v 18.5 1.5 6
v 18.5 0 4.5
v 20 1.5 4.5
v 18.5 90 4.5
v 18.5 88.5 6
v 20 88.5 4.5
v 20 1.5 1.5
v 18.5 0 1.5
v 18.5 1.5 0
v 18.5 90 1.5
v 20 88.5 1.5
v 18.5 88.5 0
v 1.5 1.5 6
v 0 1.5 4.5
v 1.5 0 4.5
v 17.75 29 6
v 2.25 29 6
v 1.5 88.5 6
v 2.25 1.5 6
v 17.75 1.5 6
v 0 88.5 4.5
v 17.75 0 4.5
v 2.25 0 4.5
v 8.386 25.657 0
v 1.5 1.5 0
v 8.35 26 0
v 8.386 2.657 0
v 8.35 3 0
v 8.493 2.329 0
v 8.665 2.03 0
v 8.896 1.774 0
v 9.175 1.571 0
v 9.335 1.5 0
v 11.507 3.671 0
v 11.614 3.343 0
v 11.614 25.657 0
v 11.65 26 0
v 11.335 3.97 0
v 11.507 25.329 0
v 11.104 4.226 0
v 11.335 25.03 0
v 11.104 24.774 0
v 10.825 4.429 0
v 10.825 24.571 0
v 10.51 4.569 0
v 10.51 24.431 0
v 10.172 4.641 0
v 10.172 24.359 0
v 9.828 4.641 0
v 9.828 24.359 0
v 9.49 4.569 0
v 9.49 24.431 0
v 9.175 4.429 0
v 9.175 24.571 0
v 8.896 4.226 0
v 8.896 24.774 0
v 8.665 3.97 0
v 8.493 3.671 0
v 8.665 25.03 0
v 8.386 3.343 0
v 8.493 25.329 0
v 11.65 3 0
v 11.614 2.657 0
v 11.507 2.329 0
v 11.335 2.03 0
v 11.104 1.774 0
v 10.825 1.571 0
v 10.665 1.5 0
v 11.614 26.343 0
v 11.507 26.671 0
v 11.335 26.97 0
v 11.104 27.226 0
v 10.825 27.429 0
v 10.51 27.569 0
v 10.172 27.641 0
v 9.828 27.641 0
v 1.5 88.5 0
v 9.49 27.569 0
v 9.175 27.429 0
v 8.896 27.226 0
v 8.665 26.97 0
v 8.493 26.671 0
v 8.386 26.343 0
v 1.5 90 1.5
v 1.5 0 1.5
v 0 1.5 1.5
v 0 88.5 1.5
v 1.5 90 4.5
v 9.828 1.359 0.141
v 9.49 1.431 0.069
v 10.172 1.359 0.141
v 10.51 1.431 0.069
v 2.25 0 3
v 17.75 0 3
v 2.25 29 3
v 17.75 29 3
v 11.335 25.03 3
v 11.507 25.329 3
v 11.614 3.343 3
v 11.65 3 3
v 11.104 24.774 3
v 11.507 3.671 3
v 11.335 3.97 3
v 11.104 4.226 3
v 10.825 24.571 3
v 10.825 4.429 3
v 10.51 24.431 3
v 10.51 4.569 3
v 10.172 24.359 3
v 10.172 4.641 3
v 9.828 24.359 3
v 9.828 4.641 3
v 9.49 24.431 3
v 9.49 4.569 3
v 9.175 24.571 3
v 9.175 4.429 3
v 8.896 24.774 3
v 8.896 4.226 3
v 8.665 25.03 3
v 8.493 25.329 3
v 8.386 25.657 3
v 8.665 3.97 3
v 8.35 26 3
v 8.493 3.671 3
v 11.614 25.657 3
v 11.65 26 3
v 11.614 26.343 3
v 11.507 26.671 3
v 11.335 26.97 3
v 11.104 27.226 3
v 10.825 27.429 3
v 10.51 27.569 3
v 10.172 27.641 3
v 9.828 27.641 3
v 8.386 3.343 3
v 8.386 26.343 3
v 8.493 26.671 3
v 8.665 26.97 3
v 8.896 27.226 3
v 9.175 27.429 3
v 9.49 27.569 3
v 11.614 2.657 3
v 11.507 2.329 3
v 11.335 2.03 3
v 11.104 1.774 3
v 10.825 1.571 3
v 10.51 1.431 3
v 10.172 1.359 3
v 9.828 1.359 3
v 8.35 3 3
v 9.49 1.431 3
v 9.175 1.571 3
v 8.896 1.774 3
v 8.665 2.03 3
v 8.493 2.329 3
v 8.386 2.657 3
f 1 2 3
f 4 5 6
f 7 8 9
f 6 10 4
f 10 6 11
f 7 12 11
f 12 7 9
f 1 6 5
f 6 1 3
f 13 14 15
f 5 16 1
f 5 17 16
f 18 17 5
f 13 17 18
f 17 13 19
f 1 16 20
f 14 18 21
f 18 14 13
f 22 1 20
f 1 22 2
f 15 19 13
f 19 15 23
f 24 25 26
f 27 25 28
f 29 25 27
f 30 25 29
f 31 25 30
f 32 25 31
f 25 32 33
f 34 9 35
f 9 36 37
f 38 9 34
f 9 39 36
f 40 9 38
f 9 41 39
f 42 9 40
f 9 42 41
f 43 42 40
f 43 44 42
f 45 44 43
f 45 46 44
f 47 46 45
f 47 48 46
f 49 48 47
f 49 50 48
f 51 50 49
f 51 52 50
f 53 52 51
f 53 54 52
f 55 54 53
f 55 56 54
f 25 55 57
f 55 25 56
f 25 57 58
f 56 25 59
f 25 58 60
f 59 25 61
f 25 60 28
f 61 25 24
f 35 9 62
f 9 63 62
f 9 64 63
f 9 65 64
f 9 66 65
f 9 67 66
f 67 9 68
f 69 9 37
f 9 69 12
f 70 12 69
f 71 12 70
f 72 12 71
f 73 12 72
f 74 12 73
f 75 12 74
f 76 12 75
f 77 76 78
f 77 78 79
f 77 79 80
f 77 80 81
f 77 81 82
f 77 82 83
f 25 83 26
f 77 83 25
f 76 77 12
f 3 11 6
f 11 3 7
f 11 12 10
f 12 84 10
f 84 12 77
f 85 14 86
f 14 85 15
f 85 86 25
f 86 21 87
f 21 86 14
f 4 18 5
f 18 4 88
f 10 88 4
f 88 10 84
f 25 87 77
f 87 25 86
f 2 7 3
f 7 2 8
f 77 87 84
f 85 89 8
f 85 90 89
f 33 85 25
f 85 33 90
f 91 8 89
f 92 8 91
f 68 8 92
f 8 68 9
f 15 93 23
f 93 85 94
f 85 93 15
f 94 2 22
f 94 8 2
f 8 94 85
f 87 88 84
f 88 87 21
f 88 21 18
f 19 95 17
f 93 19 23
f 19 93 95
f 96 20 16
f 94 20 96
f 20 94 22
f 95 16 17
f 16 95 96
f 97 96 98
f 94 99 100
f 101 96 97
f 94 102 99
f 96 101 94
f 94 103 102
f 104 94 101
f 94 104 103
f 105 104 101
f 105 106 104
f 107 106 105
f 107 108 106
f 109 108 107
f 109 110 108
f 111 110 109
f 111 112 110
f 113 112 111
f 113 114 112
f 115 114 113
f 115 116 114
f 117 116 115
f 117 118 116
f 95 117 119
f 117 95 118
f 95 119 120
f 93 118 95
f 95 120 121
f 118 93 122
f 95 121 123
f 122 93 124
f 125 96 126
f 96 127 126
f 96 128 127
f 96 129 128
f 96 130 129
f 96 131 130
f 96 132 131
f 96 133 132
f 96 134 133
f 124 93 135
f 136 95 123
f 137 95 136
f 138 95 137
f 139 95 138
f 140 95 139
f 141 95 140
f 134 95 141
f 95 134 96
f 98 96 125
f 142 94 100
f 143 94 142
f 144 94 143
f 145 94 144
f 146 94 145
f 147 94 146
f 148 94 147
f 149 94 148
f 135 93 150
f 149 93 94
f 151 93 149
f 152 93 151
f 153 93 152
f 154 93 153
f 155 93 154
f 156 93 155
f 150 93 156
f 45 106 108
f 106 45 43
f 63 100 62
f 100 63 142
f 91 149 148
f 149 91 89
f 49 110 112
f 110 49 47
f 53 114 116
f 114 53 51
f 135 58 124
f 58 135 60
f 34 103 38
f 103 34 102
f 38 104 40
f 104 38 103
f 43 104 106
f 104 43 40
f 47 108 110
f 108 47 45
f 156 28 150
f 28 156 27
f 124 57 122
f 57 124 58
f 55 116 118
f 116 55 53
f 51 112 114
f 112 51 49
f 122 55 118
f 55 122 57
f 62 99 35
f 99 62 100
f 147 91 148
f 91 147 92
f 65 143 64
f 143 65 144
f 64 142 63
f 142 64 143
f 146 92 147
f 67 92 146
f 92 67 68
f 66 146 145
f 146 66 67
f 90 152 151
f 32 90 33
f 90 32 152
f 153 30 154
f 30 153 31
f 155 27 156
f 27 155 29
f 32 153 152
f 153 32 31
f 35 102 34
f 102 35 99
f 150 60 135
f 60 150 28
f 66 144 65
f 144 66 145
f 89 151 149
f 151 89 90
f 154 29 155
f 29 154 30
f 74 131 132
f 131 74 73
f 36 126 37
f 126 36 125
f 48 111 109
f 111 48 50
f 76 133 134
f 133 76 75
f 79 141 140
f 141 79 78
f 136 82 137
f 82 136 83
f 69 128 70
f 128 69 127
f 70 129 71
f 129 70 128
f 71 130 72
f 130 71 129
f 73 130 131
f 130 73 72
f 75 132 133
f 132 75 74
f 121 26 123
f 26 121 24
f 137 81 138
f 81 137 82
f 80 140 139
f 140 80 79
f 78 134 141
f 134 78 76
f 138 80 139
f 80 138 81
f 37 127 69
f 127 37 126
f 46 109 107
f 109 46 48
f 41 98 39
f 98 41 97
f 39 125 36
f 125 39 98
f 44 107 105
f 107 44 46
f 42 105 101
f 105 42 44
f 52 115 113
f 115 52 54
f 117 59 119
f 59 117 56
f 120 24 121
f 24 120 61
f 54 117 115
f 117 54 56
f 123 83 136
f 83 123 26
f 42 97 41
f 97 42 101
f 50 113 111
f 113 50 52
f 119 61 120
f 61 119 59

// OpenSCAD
// file: ../Dollo/NEW_long_ties/globals.scad
/*
Most things in this file is represented as one millimeter, so keep that in mind while changing things.
Some of the setting are not mm but at variables that you can set, such as 2*x=2x and you are setting what x is.
I will try to specify when things are variables and not exact measurements.
*/

// printer slop
slop = 0.15;

obj_leg = 30;
leg_length = 5.5;
small_number = 0.001;
metal_core_rode_global = 5;


///////////////// number of holes /////////////////////
z_hole_number = 8;
other_holes = 8;

///////////////// Pins /////////////////////

//pins that poke out
ball_size = 10;
pin_height = 20;
pin_diameter = 6;


//holes
hole_ball_size = ball_size;
hole_pin_height = pin_height;
hole_pin_diameter = pin_diameter;

///////////////// Z THINGS /////////////////////

berring_slot_width = 7.5;
berring_slot_depth = 6.5;
metal_core_rode = 5;

///////////////// X THINGS /////////////////////

//male dove tails
male_dove_max_width=8;
male_dove_min_width=5;
male_dove_depth=5;
male_dove_height=obj_leg/2;

function scaled_male_dove_max_width() = male_dove_max_width - slop;
function scaled_male_dove_min_width() = male_dove_min_width - slop;
function scaled_male_dove_depth() = male_dove_depth - slop;

//female dove tails, this is found on the y mounts
girl_max_width=11;
girl_min_width=5;
girl_depth=5;
girl_height=obj_leg;


///////////////// Y THINGS /////////////////////
/*
The Y is so normal that all of those global variables at the top should change all of the setting in it, this section is set her incase there are variables set in the future development of this project.
*/

// stepper
motor_side_length = 43.2;
motor_bolt_hole_distance = 31;
motor_center_hole = 23;
motor_shaft_dia = 5;
motor_shaft_hole_dia = 5+2*slop;

// bolts etc.
bolt_hole_dia = 3+2*slop;
bolt_head_hole_dia = 5.8;

m4_bolt_hole_dia = 4+2*slop;
m4_bolt_head_hole_dia = 6.8+2*slop;


m3_nut_side = 5.65;
m3_nut_height = 2.3;
m4_nut_side = 6.85;
m4_nut_height = 3.1;

// threaded rod
lifter_rod_diam = 9.86;
hole_threaded_rod = lifter_rod_diam+2*slop;

// for the extensions
metal_rod_size = 9;
// main file
use <../Dollo/NEW_long_ties/include.scad>;

difference() {
    chamfered_cube(20,90,6,1.5);
    translate([2.25,0,3])
    cube([15.5,29,5]);
    
    translate([20/2,3,0])
    cylinder(d=3.3,h=10,$fn=30);
    
    translate([20/2,29-3,0])
    cylinder(d=3.3,h=10,$fn=30);

}
